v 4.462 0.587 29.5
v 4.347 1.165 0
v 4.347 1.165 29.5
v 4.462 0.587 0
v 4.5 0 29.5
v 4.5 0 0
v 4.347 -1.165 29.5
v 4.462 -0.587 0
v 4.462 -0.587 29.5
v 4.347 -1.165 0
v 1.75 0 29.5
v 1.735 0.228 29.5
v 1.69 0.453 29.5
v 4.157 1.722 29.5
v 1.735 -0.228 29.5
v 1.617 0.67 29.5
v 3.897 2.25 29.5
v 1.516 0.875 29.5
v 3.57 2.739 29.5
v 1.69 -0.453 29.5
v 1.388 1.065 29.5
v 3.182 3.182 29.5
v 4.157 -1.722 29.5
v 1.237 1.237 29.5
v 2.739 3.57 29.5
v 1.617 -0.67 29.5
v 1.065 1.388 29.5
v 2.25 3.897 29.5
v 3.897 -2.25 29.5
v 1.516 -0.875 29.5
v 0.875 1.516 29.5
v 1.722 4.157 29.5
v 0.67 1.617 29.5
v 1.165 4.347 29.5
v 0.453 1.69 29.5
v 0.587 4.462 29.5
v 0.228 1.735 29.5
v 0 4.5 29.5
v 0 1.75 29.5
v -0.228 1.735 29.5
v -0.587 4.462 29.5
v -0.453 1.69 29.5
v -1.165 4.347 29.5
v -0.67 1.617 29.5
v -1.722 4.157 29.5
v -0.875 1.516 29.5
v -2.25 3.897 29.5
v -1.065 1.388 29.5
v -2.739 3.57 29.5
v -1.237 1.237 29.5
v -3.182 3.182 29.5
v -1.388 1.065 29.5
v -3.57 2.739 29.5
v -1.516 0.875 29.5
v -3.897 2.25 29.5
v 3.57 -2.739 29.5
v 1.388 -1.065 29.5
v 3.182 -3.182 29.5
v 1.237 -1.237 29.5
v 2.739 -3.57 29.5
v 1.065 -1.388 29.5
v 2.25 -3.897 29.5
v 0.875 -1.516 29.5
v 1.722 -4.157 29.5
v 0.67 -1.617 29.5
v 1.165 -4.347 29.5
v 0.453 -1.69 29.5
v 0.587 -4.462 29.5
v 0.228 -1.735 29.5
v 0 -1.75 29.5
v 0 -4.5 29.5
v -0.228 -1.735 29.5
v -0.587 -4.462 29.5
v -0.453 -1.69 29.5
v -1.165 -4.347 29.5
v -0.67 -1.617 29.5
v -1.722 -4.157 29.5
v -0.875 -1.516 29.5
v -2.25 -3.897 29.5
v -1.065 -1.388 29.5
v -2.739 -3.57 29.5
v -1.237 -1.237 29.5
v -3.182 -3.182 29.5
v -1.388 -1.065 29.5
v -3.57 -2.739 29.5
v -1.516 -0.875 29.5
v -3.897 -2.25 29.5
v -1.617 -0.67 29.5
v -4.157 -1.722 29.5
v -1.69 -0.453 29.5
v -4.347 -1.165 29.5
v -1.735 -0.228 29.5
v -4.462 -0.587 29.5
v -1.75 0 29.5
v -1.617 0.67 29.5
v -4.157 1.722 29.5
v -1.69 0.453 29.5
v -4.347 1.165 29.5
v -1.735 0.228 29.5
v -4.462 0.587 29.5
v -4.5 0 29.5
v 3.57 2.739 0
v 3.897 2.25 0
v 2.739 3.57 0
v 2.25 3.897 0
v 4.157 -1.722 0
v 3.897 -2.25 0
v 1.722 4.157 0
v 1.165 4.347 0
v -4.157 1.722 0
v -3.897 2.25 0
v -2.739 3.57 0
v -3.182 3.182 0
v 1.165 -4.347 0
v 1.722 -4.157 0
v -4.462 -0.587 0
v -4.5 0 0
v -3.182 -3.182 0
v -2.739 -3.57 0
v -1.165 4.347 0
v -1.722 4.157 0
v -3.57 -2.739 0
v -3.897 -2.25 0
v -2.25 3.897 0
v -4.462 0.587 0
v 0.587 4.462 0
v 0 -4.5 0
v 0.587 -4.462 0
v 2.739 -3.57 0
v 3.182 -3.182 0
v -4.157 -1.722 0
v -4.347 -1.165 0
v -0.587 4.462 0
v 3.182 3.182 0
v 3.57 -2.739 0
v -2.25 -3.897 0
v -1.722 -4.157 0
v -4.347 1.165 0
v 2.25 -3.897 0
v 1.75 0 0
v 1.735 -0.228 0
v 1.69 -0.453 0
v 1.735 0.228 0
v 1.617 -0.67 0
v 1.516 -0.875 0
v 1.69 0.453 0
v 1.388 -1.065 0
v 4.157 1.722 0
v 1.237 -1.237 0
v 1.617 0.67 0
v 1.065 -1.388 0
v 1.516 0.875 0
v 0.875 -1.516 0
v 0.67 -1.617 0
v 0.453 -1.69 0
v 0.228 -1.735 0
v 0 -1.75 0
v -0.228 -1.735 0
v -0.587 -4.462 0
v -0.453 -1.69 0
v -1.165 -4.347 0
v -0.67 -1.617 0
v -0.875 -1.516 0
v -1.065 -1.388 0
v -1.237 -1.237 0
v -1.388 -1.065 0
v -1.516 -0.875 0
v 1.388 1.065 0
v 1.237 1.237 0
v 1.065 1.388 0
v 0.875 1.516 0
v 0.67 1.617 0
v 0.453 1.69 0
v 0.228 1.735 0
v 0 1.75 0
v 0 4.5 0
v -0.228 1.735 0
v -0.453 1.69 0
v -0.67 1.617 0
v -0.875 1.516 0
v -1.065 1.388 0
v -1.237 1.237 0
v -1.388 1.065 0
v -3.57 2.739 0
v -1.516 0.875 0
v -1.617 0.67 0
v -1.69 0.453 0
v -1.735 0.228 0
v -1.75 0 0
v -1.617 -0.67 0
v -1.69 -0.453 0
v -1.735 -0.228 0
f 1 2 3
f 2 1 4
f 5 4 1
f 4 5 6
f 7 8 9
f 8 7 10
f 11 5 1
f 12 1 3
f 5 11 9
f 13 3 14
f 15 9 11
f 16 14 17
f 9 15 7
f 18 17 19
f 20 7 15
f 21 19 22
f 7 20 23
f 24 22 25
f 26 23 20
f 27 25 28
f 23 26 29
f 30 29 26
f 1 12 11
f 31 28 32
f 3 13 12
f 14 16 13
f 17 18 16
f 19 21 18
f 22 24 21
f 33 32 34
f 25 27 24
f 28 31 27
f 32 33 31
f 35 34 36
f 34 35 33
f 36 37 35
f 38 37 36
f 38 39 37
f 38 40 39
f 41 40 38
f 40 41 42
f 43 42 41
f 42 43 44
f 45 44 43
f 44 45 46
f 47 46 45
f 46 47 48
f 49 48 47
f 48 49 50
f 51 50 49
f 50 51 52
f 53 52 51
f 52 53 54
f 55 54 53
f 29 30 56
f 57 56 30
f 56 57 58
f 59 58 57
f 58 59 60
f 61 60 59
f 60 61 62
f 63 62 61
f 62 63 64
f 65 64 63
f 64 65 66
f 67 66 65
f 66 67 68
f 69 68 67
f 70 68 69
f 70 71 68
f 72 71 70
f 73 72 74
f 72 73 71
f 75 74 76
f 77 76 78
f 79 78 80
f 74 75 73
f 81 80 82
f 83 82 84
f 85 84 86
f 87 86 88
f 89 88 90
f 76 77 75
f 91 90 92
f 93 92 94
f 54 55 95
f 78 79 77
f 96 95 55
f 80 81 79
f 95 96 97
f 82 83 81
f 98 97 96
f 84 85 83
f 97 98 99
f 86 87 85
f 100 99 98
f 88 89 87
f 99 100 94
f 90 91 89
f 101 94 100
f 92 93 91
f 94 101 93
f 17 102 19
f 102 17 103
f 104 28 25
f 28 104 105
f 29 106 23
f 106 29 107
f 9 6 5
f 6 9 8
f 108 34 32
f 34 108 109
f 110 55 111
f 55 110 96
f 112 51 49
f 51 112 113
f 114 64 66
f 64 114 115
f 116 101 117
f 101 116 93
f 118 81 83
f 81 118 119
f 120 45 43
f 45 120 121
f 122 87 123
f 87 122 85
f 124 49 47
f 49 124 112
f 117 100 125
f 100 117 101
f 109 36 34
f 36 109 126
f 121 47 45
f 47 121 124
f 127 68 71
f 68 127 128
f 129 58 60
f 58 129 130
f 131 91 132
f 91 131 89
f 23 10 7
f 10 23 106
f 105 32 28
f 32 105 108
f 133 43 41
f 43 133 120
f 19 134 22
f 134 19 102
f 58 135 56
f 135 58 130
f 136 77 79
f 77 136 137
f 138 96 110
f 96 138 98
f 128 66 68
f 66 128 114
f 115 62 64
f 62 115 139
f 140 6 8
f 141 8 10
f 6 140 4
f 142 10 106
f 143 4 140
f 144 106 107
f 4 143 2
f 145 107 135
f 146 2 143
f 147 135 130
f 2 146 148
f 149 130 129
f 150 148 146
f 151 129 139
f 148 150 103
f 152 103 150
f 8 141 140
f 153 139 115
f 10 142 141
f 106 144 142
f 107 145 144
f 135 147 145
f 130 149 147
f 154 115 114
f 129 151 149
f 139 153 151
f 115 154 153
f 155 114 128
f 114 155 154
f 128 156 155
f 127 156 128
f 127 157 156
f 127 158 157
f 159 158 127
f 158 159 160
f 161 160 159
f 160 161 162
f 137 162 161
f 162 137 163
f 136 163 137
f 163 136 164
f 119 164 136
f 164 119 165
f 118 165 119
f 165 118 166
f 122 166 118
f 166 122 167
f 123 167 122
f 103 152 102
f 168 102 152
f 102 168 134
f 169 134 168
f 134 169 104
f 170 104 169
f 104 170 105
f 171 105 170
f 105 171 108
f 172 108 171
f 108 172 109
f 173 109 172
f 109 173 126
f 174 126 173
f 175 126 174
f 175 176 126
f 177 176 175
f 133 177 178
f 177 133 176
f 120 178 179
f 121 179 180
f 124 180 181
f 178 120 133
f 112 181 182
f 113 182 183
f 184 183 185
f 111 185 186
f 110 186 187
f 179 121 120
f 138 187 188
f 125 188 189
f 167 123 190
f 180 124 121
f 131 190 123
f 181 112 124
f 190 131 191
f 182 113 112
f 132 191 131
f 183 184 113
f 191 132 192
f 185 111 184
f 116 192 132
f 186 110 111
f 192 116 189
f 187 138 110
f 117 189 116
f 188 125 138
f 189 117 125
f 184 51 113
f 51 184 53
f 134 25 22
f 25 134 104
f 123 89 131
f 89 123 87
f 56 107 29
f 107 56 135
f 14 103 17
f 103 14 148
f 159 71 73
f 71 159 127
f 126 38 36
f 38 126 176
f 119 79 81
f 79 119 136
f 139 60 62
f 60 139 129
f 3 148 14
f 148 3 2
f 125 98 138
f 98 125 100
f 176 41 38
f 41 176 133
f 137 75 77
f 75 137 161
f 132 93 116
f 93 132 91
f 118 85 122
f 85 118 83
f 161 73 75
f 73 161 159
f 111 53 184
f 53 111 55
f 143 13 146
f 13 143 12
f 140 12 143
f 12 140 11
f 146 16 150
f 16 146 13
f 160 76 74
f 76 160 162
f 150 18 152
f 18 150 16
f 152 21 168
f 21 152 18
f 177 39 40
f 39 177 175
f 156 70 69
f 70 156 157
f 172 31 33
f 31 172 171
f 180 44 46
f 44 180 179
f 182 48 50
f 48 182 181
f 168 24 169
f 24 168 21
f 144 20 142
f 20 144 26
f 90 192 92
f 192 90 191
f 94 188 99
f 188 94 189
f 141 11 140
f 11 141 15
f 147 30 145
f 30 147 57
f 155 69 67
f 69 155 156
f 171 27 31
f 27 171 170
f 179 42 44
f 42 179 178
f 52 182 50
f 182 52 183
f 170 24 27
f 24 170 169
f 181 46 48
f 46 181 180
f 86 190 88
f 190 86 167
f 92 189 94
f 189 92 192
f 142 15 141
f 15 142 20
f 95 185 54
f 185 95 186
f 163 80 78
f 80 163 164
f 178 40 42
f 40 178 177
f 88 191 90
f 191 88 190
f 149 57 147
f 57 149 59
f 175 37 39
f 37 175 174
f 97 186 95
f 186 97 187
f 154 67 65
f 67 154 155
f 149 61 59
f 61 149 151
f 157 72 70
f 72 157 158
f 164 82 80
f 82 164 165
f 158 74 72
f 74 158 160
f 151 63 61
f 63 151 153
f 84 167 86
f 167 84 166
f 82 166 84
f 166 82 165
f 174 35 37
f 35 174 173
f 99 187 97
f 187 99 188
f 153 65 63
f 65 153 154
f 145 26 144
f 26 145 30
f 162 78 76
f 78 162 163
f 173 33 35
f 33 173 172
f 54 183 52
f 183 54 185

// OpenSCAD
// file: parameters.scad
// =============================================================================
// Gen-BQ — nightly 2026-10-07 (physics_scorer, honest magpylib watts)
// Smooth-torque 8-pole / 9-coil line (winding factor 0.945, much lower cogging than 6-coil) with tonight's gap levers: flush 5.00 mm through-pocket seat, 0.8 mm bobbin lip (wider 35–70 mm sectors) and a ±8 mm Ø5 map at R44/52/60, on the Gen-BN Ø138 × 4.76 mm steel. Improves Gen-BN 4.166 W but 9 coils still lose to 6 coils under the wire budget.
// Clocking 0 deg (magnets N facing S) + D-flat keyed bore + index notch + flip-symmetric hole map.
// Windable 2-piece bobbin; turns = physics_scorer turns_fit; copper only between flanges.
// Steel back-iron: 2× Ø138 × 4.76 mm (3/16") mild-steel discs (steel_backiron_disc.dxf); magnets sit ON the steel
// (through-pockets) -> score with --back-iron.
// =============================================================================
topology            = "dual_rotor";

// --- Wire / winding (physics_scorer winding-fit) -------------------------------
wire_awg            = 26;
wire_od             = 0.45;     // insulated OD mm (bare 0.405)
fill_realistic      = 0.65;     // insulated-wire area / window (DENSE layered wind with a jig; scorer cap 0.65)
turns               = 486;       // = physics_scorer turns_fit (do NOT raise)
coil_former_type    = "bobbin";
coil_core_inset     = 12.60;     // radial copper build: hub = copper boundary inset by this
wind_build_axial    = 0.0;      // nothing proud of the flanges
wind_build_radial   = 0.0;

// --- Bobbin (base + lid) ---------------------------------------------------------
coil_id_r           = 35.00;    // copper boundary sector
coil_od_r           = 70.00;
span_deg            = 34.6;    // = pitch - 2*asin((wall+0.85)/coil_id_r) -> >=1.2 mm stator web
former_web          = 9.45;     // copper height between flanges (TALL copper: steel keeps Bz up)
flange_t            = 0.80;     // >= 0.8 mm FDM wall rule (tall winds push on the flanges)
wall                = 0.80;     // flange lip beyond copper
former_bare_h       = former_web + 2 * flange_t;
coil_envelope_h     = former_bare_h + 2 * wind_build_axial;
tab_w               = 7.0;
tab_len             = 7.0;
tab_h               = former_bare_h / 2;
pin_d               = 1.9;      // 1.75 mm filament locating pin
coil_mount_r        = coil_od_r + 0.2 + 4.0;
lead_y              = 1.6;
lead_slot_w         = 0.9;
lead_groove_d       = 0.6;

// --- Gap -------------------------------------------------------------------------
run_clear           = 0.50;     // rotor face -> flange
gap_spacer_h        = run_clear + wind_build_axial;
m2m                 = coil_envelope_h + 2 * run_clear;   // rotor face to rotor face (= gap_sleeve length)

// --- Stator ----------------------------------------------------------------------
coil_stations       = 9;
bay_clear           = 0.25;
stator_thick        = former_bare_h;                        // bobbins flush both faces
stator_od           = 160.0;
shaft_clear_stator  = 14.0;     // stator is static; gap sleeve OD 12 spins inside

// --- Rotor(s) --------------------------------------------------------------------
magnet_Br           = 1.43;     // N52
magnet_d_large      = 20.0;
magnet_h_large      = 5.0;      // one O20x5 per pocket
magnet_h_small      = 5.0;      // one O5x5 per pocket
halbach_magnetisation = "diametric"; // O5x5 assist magnets MUST be DIAMETRICALLY magnetised (tangential)
rotor_b_same_axis   = true;     // same-index magnets share one axis: N faces S across the gap
large_pocket_d      = 20.3;
small_pocket_d      = 5.3;
pocket_h            = 5.00;     // THROUGH the carrier: magnet back face sits on the steel disc (FLUSH seat: carrier = magnet height, magnet face level with the rotor face)
large_n             = 8;
R_large             = 52.0;
R_small_inner       = 44.0;
R_small_mid         = 52.0;
R_small_outer       = 60.0;
small_r_list        = [R_small_inner, R_small_mid, R_small_outer];   // O5 pockets between poles
carrier_od          = 138.0;
carrier_thick       = pocket_h;
hub_h               = 12.0;     // > steel_t + insert: radial set-screw clears the steel
hub_od              = 24.0;     // slim hub so the M4 brace rods fit at R~18 inside the coil ring
hub_insert_d        = 4.0;      // M3 heat-set insert, radial, bears on the D-flat
rotor_b_offset_deg  = 0.0;      // CLOCKING: magnets directly opposite
shaft_key           = "dflat";
dflat_depth         = 0.5;      // 8 mm shaft with 0.5 mm flat (7.5 across flat)
index_notch_d       = 3.0;

// --- Steel back-iron (buyable laser-cut) -------------------------------------------
steel_t             = 4.76;      // mild steel thickness (image method ignores it; sized from steel_flux.py so the return path stays well below saturation)
steel_center_hole   = 26.0;     // slips over the rotor hub (OD 24)
steel_od            = carrier_od;   // steel disc OD = rotor carrier OD

// --- Modular MAX interface ----------------------------------------------------------
shaft_bore          = 8.35;
dflat_x             = 4.0 - dflat_depth + (shaft_bore - 8.0) / 2;
bearing_d           = 21.85;
bearing_h           = 7.2;
m3_clear            = 3.5;
bolt_r_inner        = 30.0;     // M3 steel-disc clamp bolts (inside the magnet ring)
bolt_n_inner        = 4;
bolt_inner_angles   = [0, 90, 180, 270];
bolt_r_outer        = 65.0;     // M3 steel-disc clamp bolts (outside the magnet ring)
bolt_outer_angles   = [45, 135, 225, 315];
flange_bolt_r       = 75.0;     // frame rods: OUTSIDE the rotor OD (rotors spin inside them)
flange_bolt_n       = 9;
flange_bolt_offset  = 20.00;    // between coil stations -> never cuts a lead groove/tab
brace_r             = 18.0;
brace_d             = 4.3;      // temporary M4 jack rods (assembly only)
brace_n             = 4;
brace_angles        = [45, 135, 225, 315];          // flip-symmetric

spacer_pad_od       = 14.0;
spacer_pad_id       = m3_clear;
endbell_od          = 160.0;
endbell_thick       = 8.0;
endbell_shaft_clear = 10.0;
collar_h            = 10.0;
standoff_od         = 9.0;
frame_standoff_h    = run_clear + carrier_thick + hub_h + collar_h + 2.0;
sleeve_od           = 12.0;
plate_max_mm        = 410;

$fn = 64;
// main file
// Gen-BQ — frame standoff tube between stator and an endbell, on each M3 frame rod (outside rotor OD).
// Print x18. Height = frame_standoff_h (rotor + steel + hub + collar + running clearance).
include <parameters.scad>;
$fn = 48;
difference() {
    cylinder(d=standoff_od, h=frame_standoff_h);
    translate([0, 0, -0.1]) cylinder(d=m3_clear, h=frame_standoff_h + 0.2);
}
